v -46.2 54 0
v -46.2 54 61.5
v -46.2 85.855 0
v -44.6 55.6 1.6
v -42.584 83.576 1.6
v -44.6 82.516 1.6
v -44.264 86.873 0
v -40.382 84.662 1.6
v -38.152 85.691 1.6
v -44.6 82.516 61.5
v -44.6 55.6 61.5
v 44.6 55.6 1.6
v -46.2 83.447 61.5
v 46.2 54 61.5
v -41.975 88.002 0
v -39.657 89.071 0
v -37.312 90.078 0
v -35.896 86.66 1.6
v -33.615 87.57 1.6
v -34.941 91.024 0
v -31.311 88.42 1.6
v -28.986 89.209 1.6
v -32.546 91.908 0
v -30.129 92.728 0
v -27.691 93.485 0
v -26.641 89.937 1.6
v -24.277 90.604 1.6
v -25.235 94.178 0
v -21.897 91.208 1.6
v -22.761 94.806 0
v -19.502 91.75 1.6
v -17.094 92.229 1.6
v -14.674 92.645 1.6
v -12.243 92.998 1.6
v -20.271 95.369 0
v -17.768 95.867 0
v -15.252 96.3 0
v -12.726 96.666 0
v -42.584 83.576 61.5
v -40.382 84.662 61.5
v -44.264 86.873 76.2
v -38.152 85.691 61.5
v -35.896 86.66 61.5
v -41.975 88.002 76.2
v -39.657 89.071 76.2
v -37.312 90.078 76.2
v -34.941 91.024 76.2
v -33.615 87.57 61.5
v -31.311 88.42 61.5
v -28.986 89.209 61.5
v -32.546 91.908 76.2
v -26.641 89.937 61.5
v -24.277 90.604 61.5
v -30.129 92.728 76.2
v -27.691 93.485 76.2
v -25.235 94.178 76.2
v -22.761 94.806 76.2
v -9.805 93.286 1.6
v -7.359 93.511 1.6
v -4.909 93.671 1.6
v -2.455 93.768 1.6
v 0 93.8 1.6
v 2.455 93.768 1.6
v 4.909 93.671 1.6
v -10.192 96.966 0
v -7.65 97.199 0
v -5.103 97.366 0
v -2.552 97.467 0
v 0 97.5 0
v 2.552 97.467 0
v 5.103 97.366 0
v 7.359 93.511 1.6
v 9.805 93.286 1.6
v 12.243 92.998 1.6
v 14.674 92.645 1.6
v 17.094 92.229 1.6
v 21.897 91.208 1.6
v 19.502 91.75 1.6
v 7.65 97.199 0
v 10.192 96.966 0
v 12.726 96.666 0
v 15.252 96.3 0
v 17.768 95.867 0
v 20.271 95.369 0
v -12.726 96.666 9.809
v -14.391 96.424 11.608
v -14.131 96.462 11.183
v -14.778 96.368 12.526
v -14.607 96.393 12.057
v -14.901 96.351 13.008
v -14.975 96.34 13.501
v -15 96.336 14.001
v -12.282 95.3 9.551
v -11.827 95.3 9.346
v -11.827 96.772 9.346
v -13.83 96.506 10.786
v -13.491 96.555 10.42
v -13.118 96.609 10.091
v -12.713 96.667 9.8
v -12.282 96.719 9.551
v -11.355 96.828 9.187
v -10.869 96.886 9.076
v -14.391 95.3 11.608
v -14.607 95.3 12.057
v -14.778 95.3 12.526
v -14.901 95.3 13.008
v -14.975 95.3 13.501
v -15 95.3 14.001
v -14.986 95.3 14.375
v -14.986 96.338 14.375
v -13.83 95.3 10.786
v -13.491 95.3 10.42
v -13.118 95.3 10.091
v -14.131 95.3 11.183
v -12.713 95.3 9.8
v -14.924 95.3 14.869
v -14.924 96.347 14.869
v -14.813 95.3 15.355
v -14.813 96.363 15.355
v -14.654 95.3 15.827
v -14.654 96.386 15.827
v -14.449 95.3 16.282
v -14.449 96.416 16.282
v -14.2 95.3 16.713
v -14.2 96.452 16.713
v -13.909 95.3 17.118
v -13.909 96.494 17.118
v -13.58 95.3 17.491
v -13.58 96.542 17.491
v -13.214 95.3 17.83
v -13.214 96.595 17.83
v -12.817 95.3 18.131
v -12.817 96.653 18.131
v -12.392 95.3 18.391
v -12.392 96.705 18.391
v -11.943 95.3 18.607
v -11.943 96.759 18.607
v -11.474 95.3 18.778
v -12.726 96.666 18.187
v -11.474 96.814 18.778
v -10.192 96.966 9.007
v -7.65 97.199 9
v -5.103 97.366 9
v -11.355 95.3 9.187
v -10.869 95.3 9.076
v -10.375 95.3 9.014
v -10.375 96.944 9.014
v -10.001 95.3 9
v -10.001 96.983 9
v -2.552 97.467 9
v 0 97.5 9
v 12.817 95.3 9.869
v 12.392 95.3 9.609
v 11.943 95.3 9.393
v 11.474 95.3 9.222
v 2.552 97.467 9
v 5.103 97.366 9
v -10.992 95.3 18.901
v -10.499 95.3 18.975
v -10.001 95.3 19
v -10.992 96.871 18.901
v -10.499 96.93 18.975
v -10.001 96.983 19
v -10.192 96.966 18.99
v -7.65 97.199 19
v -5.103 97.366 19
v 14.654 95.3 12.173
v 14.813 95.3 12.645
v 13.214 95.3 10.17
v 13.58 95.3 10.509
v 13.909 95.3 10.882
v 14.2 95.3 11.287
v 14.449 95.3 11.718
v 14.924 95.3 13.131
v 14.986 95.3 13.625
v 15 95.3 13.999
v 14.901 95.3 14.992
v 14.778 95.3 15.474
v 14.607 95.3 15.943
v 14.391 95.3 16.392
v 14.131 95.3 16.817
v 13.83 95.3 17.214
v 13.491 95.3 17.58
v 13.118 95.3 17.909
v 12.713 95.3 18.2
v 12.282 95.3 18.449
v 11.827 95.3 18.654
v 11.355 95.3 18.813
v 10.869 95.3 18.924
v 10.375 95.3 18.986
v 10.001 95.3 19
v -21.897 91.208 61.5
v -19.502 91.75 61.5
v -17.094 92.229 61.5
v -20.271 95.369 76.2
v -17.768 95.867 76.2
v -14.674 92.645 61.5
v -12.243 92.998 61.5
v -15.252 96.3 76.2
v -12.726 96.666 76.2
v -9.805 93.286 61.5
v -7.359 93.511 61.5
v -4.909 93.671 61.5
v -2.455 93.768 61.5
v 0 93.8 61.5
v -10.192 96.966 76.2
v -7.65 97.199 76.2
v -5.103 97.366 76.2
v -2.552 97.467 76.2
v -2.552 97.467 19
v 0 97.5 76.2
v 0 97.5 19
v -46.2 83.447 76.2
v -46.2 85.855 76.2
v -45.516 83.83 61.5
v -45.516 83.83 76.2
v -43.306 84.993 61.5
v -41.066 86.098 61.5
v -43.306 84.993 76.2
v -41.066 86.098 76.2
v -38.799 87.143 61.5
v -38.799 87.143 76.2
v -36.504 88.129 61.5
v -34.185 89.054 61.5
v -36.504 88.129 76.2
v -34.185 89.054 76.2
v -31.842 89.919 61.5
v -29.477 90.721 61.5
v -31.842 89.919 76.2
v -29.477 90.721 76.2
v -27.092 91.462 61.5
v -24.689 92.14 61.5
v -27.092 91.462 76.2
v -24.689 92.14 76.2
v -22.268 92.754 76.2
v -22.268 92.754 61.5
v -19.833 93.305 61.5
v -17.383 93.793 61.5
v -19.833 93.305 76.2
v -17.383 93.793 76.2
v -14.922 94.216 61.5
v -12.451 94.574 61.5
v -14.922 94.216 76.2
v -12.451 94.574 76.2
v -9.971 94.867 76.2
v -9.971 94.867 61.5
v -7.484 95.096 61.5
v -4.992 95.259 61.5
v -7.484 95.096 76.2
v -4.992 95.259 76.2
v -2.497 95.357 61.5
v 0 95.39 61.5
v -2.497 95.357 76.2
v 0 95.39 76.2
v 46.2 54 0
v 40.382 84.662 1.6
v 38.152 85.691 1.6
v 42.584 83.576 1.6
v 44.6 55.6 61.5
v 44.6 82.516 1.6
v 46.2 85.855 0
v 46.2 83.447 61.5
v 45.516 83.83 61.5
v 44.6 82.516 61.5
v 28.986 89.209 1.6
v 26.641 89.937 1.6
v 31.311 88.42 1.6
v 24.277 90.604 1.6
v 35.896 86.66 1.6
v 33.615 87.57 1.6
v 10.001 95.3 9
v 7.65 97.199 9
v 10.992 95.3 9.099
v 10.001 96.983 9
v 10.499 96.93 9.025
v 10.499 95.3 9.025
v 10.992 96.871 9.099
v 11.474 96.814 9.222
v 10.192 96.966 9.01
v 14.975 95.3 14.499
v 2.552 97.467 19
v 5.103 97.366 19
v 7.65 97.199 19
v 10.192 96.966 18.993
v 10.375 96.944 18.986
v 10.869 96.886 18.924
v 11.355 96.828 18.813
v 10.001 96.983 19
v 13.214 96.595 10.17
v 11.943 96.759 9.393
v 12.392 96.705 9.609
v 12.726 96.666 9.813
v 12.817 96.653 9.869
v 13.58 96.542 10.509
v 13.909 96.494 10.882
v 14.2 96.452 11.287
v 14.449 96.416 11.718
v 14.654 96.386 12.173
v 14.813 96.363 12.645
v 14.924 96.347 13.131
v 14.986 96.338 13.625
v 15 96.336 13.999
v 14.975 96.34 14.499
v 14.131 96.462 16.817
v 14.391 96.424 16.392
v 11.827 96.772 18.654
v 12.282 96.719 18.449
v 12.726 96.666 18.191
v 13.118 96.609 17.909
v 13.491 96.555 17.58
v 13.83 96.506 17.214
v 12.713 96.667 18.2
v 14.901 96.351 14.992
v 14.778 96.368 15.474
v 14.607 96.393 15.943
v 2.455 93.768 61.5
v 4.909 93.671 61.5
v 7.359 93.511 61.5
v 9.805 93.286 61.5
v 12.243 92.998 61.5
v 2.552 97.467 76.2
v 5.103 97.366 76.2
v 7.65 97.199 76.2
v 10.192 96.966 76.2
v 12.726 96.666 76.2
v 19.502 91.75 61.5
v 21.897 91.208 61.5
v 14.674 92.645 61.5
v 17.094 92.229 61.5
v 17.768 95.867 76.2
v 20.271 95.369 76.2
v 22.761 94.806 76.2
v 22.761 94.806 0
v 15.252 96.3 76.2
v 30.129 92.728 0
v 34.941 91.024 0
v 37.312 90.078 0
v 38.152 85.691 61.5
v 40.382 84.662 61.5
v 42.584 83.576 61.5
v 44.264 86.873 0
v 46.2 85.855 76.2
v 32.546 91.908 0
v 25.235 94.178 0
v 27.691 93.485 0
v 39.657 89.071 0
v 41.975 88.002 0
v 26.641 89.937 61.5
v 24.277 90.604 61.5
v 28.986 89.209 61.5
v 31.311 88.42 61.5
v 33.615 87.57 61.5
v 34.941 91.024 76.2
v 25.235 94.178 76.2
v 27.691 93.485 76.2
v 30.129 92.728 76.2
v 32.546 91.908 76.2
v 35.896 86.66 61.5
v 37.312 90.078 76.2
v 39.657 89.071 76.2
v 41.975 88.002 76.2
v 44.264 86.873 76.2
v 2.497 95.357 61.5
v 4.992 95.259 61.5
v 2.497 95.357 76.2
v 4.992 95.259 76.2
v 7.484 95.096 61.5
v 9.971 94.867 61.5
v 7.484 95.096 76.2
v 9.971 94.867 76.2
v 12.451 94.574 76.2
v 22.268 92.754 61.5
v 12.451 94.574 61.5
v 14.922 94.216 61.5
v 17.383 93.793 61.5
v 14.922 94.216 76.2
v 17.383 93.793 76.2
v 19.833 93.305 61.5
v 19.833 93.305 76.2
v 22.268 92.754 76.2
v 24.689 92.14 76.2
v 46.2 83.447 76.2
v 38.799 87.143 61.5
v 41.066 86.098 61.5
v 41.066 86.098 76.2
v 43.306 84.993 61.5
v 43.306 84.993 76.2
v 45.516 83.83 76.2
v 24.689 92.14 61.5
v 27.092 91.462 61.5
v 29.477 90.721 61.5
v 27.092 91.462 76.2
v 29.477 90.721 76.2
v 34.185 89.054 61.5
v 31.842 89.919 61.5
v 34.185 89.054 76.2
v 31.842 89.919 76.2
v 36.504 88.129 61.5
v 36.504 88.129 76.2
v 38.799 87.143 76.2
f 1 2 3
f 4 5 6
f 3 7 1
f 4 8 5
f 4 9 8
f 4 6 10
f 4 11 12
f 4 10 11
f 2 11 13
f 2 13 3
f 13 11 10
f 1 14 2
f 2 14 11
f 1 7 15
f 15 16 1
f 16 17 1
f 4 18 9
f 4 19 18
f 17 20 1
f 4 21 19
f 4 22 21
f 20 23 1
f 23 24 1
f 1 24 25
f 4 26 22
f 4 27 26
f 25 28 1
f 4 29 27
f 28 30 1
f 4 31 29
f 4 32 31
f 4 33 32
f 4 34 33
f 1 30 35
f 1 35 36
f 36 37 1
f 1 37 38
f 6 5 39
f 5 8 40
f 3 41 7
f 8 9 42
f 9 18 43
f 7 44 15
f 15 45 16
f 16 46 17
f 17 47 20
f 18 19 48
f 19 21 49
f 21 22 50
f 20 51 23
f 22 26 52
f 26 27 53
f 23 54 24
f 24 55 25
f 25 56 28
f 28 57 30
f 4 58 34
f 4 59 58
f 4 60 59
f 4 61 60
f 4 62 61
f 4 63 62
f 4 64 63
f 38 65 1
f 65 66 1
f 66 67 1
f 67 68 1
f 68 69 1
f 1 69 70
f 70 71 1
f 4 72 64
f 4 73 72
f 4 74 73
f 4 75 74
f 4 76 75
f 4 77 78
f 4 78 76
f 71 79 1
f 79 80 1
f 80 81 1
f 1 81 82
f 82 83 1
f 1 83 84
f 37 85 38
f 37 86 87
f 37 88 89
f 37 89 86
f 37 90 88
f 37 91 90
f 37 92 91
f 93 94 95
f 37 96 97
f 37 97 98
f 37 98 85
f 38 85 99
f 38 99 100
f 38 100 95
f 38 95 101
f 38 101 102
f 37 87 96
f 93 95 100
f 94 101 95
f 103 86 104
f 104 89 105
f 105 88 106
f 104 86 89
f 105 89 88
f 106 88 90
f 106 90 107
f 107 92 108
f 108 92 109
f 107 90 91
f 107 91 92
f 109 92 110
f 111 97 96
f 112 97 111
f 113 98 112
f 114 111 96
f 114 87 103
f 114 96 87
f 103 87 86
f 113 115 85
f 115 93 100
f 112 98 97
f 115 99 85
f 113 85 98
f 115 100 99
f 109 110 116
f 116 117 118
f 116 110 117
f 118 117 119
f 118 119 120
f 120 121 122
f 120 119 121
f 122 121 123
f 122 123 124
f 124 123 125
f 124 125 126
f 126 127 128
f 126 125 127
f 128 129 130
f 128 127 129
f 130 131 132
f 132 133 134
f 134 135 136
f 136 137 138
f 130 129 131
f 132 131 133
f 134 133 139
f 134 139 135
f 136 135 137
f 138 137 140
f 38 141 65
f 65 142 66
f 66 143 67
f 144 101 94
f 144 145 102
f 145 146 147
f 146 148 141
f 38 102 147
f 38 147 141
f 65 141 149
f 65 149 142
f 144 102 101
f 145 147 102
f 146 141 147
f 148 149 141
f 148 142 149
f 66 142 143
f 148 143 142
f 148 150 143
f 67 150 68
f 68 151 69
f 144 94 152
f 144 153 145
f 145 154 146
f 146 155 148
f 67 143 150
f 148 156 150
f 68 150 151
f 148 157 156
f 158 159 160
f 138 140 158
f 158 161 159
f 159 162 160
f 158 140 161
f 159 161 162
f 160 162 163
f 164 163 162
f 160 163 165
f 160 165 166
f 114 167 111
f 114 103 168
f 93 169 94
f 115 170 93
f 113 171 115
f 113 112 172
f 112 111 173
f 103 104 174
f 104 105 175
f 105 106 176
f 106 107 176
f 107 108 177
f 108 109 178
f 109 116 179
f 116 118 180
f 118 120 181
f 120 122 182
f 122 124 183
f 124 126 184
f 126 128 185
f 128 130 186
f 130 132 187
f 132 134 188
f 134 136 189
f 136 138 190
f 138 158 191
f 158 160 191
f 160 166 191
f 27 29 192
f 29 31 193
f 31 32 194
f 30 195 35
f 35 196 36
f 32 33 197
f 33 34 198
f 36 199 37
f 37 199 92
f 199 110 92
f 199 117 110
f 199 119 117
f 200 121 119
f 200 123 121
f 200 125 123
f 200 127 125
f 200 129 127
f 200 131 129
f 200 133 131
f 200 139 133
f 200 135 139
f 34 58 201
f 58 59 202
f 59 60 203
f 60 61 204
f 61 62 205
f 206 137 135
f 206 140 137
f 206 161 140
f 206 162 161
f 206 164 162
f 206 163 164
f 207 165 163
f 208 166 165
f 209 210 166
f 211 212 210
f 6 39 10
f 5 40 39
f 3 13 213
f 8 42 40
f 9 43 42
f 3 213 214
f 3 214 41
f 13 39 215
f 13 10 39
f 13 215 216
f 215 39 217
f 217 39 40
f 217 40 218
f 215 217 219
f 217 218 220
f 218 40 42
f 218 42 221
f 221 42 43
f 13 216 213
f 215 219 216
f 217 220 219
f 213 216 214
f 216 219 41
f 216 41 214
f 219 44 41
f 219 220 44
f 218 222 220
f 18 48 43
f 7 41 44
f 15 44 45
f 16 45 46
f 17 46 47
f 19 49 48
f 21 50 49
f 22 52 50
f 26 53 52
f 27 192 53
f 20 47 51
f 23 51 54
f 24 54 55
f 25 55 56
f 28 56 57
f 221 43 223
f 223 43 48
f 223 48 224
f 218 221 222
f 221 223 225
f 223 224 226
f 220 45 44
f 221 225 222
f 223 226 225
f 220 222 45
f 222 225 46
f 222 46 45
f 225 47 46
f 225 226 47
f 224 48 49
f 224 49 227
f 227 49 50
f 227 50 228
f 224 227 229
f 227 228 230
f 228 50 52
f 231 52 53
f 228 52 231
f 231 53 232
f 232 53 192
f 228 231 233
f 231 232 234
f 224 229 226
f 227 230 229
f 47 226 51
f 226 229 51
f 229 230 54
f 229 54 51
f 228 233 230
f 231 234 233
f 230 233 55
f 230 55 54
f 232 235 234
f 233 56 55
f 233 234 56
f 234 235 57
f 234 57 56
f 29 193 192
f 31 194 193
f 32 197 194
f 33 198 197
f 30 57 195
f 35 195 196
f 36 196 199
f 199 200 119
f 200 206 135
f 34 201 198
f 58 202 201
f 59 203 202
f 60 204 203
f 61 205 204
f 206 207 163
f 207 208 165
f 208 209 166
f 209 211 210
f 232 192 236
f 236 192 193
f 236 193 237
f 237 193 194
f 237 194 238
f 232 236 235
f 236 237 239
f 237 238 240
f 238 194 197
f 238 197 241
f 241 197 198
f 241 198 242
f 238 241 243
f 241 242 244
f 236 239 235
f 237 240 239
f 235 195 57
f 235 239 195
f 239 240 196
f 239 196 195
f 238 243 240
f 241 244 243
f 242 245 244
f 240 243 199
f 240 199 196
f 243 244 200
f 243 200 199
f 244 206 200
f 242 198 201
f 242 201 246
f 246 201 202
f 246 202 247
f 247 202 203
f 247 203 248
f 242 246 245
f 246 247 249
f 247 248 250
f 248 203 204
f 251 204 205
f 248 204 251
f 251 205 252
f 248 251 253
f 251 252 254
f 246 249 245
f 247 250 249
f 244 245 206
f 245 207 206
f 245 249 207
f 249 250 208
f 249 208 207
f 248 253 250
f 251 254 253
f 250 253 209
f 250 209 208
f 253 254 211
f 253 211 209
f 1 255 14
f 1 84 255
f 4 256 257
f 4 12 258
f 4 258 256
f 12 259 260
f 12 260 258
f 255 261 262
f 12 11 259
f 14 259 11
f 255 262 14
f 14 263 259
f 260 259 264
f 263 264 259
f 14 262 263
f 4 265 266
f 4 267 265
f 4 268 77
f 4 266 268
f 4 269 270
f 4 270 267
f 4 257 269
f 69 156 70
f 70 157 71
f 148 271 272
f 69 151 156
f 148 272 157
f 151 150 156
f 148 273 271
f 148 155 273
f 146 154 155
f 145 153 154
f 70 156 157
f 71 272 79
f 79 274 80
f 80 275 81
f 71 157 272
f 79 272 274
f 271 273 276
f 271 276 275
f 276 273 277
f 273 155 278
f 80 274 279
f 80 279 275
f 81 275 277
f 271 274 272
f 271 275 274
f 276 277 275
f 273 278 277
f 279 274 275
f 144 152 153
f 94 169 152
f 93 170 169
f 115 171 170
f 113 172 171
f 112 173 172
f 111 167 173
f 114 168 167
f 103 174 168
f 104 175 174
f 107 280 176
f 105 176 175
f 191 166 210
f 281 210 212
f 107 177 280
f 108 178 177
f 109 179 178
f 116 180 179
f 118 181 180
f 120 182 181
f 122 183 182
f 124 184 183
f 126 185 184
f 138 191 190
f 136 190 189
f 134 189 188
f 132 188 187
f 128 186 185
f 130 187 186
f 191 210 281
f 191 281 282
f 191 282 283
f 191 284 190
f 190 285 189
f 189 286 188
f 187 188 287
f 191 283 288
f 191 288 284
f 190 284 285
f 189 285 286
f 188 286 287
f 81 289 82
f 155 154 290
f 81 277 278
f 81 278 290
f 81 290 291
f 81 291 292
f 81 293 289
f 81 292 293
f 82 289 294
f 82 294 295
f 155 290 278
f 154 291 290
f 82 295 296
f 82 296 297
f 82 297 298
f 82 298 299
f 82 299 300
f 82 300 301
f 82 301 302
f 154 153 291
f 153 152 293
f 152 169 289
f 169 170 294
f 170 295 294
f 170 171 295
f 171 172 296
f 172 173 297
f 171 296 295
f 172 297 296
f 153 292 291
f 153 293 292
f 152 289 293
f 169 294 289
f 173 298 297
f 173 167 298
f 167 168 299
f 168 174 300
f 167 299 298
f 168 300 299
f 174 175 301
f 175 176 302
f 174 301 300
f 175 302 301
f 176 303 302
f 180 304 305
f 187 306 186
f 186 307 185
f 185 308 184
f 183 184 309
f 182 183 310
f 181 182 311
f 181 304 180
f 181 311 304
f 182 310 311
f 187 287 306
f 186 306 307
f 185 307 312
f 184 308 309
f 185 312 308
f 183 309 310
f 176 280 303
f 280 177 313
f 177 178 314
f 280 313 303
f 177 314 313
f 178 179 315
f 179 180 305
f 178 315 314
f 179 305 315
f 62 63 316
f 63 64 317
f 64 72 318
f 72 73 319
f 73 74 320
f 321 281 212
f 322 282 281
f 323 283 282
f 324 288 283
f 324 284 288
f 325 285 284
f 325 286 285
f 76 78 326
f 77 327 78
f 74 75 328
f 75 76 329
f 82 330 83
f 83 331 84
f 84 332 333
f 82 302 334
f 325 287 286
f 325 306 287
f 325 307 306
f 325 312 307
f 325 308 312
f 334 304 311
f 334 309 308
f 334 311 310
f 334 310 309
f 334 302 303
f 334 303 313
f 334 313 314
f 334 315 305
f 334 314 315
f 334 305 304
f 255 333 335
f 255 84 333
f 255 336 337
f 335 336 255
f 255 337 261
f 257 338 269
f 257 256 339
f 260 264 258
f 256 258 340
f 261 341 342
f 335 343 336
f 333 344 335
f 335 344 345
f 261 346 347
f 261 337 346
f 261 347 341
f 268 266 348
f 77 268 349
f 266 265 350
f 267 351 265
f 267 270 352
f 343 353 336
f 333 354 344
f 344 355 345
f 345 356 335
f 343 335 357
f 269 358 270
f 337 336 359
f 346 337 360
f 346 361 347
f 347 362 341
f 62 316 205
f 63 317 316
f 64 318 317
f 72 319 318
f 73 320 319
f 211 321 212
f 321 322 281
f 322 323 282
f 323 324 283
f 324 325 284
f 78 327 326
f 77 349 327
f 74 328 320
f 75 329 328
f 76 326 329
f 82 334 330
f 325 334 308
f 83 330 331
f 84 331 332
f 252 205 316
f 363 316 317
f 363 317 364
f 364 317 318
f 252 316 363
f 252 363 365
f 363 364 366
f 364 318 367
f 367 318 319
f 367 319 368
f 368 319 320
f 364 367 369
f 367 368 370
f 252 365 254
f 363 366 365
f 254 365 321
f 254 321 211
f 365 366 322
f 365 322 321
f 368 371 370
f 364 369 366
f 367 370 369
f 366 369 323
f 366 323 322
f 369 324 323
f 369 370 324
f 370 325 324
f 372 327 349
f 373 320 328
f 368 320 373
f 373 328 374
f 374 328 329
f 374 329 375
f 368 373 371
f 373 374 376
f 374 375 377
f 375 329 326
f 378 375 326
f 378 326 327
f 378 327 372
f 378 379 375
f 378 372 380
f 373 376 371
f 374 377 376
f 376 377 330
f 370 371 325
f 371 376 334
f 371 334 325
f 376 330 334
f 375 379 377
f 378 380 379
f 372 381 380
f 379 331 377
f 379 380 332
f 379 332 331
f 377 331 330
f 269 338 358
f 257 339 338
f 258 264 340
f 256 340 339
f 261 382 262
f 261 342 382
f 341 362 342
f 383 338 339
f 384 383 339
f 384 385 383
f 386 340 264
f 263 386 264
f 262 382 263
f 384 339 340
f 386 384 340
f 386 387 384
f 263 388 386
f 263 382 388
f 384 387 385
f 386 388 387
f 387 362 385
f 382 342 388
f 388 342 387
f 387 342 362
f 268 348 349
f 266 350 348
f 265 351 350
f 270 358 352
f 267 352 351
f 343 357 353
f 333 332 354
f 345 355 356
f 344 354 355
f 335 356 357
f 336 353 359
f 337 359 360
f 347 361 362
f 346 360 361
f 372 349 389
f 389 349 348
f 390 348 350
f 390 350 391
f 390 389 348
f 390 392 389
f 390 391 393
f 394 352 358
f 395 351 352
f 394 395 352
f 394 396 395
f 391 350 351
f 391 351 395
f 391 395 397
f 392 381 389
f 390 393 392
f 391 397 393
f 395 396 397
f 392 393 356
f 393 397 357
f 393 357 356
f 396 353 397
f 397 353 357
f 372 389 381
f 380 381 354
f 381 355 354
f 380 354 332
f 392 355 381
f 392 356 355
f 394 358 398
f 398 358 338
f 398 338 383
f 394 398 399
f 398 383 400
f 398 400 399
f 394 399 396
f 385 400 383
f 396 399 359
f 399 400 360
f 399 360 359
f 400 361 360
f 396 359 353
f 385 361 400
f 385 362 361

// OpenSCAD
// file: lib/lib.scad
// Shared helpers. Include AFTER params.scad (needs TOL, M3_* etc.).
$fa = 4; $fs = 0.5;

module rrect(size, r) {            // 2D rounded rectangle, centred
    r2 = min(r, min(size[0], size[1]) / 2 - 0.001);
    offset(r = r2) square([size[0] - 2 * r2, size[1] - 2 * r2], center = true);
}
module rbox(size, r, center_xy = true) {   // box with rounded vertical edges
    translate(center_xy ? [0, 0, 0] : [size[0] / 2, size[1] / 2, 0])
        linear_extrude(size[2]) rrect([size[0], size[1]], r);
}
module rbox_at(x0, x1, y0, y1, z0, z1, r = 0.01) {
    translate([(x0 + x1) / 2, (y0 + y1) / 2, z0]) rbox([x1 - x0, y1 - y0, z1 - z0], r);
}
module box_at(x0, x1, y0, y1, z0, z1) { translate([x0, y0, z0]) cube([x1 - x0, y1 - y0, z1 - z0]); }

module ring(ro, ri, h) { difference() { cylinder(r = ro, h = h); translate([0, 0, -1]) cylinder(r = ri, h = h + 2); } }
module ring_sector(ro, ri, h, a0, a1) {
    intersection() {
        ring(ro, ri, h);
        linear_extrude(h) polygon(concat([[0, 0]], [for (a = [a0 : (a1 - a0) / 24 : a1]) 2 * ro * [cos(a), sin(a)]]));
    }
}
// teardrop hole along an axis lying horizontal (axis = Y after rotation), printable w/o support
module teardrop2d(d) { union() { circle(d = d); rotate(45) square(d / 2); } }
// vertical heat-set insert hole, opening at z=0 going +z (depth l)
module insert_hole(l = M3_INSERT_L) { translate([0, 0, -EPS]) cylinder(d = M3_INSERT_D, h = l + EPS); }
module m3_clear(l) { translate([0, 0, -EPS]) cylinder(d = M3_CLEAR, h = l + 2 * EPS); }
module m3_csk(l) {  // countersunk clearance from z=0 upward, head at z=0 side
    translate([0, 0, -EPS]) { cylinder(d = M3_CLEAR, h = l + 2 * EPS); cylinder(d1 = 6.4, d2 = M3_CLEAR, h = 1.7); }
}
module card2d() { rrect([CARD_L, CARD_W], CARD_R); }
module card_at(cy, z) { translate([0, cy, z]) linear_extrude(CARD_T) card2d(); }

// ---- gears ----
function _inv(a) = tan(a) - a * PI_ / 180;           // involute function, a in deg
function _invpt(rb, r, ang0, s) = let(al = acos(rb / r), th = ang0 - s * (_inv(al) * 180 / PI_)) [r * cos(th), r * sin(th)];
module involute_gear2d(m, z, pa = 20, clearance = 0.05) {
    rp = m * z / 2; rb = rp * cos(pa); ra = rp + m - clearance; rf = rp - 1.25 * m;
    half = 90 / z + _inv(pa) * 180 / PI_;            // tooth half-angle at base (deg)
    n = 8;
    rs = [for (i = [0 : n]) max(rb, rf) + (ra - max(rb, rf)) * i / n];
    union() {
        circle(r = rf, $fn = z * 4);
        for (k = [0 : z - 1]) rotate(k * 360 / z) polygon(concat(
            [[rf * cos(-half), rf * sin(-half)]],
            [for (r = rs) let(p = _invpt(rb, r, half, 1)) [p[0], -p[1]]],
            [for (i = [n : -1 : 0]) _invpt(rb, rs[i], half, 1)],
            [[rf * cos(half), rf * sin(half)]]));
    }
}
// straight gear rack (2D in XY: teeth along +x, pointing -y, pitch line at y=0)
module gear_rack2d(m, len, back = 3) {
    p = PI_ * m; ad = m; de = 1.25 * m; t = tan(20);
    n = ceil(len / p) + 1;
    intersection() {
        union() {
            translate([0, de]) square([len, back]);
            for (i = [0 : n]) translate([i * p - p / 4, 0]) polygon([
                [-(p / 4 + de * t), de + 0.01], [p / 4 + de * t + 0.01, de + 0.01],
                [p / 4 - ad * t, -ad], [-(p / 4 - ad * t), -ad] ]);
        }
        translate([0, -ad - 1]) square([len, ad + de + back + 2]);
    }
}
// GT2 belt-tooth profile ring (teeth outward), 2D
module gt2_ring2d(n, r_land, ri) {
    union() {
        difference() { circle(r = r_land + 0.01, $fn = n * 2); circle(r = ri, $fn = n * 2); }
        for (k = [0 : n - 1]) rotate(k * 360 / n)
            translate([r_land, 0]) hull() { translate([-0.2, 0]) square([0.2, 1.0], center = true); translate([0.25, 0]) circle(r = 0.5, $fn = 12); }
    }
}
// main file
// Burn drawer under the exit slot. Its curved front is a flush patch of the turret
// shell; it slides out radially between the launcher side plates.
// Print: upright (floor on bed), no supports.
include <params.scad>
include <lib/lib.scad>
module bt_body(grow = 0) intersection() {
    box_at(-BT_XO - grow, BT_XO + grow, BT_Y0 - grow, TURRET_R + 5, BT_Z0 - grow, BT_Z1 + grow);
    cylinder(r = TURRET_RI - 0.3 + grow, h = 300, $fn = 240);
}
module burn_tray() difference() {
    union() {
        bt_body();
        intersection() {
            ring(TURRET_R, TURRET_RI - 0.31, 300, $fn = 240);
            box_at(-BT_XO, BT_XO, 0, TURRET_R + 1, BT_Z0, SLOT_Z0);
        }
    }
    intersection() {
        box_at(-BT_XO + BT_WALL, BT_XO - BT_WALL, BT_Y0 + BT_WALL, TURRET_R + 5, BT_Z0 + 1.6, BT_Z1 + 1);
        cylinder(r = TURRET_RI - 0.3 - BT_WALL, h = 300, $fn = 240);
    }
    // finger recess in the front skin
    translate([0, TURRET_R + 2, BT_Z0 + 14]) rotate([90, 0, 0]) linear_extrude(4.2) rrect([30, 10], 5);
}
module burn_tray_print() translate([0, 0, -BT_Z0]) burn_tray();
burn_tray_print();
